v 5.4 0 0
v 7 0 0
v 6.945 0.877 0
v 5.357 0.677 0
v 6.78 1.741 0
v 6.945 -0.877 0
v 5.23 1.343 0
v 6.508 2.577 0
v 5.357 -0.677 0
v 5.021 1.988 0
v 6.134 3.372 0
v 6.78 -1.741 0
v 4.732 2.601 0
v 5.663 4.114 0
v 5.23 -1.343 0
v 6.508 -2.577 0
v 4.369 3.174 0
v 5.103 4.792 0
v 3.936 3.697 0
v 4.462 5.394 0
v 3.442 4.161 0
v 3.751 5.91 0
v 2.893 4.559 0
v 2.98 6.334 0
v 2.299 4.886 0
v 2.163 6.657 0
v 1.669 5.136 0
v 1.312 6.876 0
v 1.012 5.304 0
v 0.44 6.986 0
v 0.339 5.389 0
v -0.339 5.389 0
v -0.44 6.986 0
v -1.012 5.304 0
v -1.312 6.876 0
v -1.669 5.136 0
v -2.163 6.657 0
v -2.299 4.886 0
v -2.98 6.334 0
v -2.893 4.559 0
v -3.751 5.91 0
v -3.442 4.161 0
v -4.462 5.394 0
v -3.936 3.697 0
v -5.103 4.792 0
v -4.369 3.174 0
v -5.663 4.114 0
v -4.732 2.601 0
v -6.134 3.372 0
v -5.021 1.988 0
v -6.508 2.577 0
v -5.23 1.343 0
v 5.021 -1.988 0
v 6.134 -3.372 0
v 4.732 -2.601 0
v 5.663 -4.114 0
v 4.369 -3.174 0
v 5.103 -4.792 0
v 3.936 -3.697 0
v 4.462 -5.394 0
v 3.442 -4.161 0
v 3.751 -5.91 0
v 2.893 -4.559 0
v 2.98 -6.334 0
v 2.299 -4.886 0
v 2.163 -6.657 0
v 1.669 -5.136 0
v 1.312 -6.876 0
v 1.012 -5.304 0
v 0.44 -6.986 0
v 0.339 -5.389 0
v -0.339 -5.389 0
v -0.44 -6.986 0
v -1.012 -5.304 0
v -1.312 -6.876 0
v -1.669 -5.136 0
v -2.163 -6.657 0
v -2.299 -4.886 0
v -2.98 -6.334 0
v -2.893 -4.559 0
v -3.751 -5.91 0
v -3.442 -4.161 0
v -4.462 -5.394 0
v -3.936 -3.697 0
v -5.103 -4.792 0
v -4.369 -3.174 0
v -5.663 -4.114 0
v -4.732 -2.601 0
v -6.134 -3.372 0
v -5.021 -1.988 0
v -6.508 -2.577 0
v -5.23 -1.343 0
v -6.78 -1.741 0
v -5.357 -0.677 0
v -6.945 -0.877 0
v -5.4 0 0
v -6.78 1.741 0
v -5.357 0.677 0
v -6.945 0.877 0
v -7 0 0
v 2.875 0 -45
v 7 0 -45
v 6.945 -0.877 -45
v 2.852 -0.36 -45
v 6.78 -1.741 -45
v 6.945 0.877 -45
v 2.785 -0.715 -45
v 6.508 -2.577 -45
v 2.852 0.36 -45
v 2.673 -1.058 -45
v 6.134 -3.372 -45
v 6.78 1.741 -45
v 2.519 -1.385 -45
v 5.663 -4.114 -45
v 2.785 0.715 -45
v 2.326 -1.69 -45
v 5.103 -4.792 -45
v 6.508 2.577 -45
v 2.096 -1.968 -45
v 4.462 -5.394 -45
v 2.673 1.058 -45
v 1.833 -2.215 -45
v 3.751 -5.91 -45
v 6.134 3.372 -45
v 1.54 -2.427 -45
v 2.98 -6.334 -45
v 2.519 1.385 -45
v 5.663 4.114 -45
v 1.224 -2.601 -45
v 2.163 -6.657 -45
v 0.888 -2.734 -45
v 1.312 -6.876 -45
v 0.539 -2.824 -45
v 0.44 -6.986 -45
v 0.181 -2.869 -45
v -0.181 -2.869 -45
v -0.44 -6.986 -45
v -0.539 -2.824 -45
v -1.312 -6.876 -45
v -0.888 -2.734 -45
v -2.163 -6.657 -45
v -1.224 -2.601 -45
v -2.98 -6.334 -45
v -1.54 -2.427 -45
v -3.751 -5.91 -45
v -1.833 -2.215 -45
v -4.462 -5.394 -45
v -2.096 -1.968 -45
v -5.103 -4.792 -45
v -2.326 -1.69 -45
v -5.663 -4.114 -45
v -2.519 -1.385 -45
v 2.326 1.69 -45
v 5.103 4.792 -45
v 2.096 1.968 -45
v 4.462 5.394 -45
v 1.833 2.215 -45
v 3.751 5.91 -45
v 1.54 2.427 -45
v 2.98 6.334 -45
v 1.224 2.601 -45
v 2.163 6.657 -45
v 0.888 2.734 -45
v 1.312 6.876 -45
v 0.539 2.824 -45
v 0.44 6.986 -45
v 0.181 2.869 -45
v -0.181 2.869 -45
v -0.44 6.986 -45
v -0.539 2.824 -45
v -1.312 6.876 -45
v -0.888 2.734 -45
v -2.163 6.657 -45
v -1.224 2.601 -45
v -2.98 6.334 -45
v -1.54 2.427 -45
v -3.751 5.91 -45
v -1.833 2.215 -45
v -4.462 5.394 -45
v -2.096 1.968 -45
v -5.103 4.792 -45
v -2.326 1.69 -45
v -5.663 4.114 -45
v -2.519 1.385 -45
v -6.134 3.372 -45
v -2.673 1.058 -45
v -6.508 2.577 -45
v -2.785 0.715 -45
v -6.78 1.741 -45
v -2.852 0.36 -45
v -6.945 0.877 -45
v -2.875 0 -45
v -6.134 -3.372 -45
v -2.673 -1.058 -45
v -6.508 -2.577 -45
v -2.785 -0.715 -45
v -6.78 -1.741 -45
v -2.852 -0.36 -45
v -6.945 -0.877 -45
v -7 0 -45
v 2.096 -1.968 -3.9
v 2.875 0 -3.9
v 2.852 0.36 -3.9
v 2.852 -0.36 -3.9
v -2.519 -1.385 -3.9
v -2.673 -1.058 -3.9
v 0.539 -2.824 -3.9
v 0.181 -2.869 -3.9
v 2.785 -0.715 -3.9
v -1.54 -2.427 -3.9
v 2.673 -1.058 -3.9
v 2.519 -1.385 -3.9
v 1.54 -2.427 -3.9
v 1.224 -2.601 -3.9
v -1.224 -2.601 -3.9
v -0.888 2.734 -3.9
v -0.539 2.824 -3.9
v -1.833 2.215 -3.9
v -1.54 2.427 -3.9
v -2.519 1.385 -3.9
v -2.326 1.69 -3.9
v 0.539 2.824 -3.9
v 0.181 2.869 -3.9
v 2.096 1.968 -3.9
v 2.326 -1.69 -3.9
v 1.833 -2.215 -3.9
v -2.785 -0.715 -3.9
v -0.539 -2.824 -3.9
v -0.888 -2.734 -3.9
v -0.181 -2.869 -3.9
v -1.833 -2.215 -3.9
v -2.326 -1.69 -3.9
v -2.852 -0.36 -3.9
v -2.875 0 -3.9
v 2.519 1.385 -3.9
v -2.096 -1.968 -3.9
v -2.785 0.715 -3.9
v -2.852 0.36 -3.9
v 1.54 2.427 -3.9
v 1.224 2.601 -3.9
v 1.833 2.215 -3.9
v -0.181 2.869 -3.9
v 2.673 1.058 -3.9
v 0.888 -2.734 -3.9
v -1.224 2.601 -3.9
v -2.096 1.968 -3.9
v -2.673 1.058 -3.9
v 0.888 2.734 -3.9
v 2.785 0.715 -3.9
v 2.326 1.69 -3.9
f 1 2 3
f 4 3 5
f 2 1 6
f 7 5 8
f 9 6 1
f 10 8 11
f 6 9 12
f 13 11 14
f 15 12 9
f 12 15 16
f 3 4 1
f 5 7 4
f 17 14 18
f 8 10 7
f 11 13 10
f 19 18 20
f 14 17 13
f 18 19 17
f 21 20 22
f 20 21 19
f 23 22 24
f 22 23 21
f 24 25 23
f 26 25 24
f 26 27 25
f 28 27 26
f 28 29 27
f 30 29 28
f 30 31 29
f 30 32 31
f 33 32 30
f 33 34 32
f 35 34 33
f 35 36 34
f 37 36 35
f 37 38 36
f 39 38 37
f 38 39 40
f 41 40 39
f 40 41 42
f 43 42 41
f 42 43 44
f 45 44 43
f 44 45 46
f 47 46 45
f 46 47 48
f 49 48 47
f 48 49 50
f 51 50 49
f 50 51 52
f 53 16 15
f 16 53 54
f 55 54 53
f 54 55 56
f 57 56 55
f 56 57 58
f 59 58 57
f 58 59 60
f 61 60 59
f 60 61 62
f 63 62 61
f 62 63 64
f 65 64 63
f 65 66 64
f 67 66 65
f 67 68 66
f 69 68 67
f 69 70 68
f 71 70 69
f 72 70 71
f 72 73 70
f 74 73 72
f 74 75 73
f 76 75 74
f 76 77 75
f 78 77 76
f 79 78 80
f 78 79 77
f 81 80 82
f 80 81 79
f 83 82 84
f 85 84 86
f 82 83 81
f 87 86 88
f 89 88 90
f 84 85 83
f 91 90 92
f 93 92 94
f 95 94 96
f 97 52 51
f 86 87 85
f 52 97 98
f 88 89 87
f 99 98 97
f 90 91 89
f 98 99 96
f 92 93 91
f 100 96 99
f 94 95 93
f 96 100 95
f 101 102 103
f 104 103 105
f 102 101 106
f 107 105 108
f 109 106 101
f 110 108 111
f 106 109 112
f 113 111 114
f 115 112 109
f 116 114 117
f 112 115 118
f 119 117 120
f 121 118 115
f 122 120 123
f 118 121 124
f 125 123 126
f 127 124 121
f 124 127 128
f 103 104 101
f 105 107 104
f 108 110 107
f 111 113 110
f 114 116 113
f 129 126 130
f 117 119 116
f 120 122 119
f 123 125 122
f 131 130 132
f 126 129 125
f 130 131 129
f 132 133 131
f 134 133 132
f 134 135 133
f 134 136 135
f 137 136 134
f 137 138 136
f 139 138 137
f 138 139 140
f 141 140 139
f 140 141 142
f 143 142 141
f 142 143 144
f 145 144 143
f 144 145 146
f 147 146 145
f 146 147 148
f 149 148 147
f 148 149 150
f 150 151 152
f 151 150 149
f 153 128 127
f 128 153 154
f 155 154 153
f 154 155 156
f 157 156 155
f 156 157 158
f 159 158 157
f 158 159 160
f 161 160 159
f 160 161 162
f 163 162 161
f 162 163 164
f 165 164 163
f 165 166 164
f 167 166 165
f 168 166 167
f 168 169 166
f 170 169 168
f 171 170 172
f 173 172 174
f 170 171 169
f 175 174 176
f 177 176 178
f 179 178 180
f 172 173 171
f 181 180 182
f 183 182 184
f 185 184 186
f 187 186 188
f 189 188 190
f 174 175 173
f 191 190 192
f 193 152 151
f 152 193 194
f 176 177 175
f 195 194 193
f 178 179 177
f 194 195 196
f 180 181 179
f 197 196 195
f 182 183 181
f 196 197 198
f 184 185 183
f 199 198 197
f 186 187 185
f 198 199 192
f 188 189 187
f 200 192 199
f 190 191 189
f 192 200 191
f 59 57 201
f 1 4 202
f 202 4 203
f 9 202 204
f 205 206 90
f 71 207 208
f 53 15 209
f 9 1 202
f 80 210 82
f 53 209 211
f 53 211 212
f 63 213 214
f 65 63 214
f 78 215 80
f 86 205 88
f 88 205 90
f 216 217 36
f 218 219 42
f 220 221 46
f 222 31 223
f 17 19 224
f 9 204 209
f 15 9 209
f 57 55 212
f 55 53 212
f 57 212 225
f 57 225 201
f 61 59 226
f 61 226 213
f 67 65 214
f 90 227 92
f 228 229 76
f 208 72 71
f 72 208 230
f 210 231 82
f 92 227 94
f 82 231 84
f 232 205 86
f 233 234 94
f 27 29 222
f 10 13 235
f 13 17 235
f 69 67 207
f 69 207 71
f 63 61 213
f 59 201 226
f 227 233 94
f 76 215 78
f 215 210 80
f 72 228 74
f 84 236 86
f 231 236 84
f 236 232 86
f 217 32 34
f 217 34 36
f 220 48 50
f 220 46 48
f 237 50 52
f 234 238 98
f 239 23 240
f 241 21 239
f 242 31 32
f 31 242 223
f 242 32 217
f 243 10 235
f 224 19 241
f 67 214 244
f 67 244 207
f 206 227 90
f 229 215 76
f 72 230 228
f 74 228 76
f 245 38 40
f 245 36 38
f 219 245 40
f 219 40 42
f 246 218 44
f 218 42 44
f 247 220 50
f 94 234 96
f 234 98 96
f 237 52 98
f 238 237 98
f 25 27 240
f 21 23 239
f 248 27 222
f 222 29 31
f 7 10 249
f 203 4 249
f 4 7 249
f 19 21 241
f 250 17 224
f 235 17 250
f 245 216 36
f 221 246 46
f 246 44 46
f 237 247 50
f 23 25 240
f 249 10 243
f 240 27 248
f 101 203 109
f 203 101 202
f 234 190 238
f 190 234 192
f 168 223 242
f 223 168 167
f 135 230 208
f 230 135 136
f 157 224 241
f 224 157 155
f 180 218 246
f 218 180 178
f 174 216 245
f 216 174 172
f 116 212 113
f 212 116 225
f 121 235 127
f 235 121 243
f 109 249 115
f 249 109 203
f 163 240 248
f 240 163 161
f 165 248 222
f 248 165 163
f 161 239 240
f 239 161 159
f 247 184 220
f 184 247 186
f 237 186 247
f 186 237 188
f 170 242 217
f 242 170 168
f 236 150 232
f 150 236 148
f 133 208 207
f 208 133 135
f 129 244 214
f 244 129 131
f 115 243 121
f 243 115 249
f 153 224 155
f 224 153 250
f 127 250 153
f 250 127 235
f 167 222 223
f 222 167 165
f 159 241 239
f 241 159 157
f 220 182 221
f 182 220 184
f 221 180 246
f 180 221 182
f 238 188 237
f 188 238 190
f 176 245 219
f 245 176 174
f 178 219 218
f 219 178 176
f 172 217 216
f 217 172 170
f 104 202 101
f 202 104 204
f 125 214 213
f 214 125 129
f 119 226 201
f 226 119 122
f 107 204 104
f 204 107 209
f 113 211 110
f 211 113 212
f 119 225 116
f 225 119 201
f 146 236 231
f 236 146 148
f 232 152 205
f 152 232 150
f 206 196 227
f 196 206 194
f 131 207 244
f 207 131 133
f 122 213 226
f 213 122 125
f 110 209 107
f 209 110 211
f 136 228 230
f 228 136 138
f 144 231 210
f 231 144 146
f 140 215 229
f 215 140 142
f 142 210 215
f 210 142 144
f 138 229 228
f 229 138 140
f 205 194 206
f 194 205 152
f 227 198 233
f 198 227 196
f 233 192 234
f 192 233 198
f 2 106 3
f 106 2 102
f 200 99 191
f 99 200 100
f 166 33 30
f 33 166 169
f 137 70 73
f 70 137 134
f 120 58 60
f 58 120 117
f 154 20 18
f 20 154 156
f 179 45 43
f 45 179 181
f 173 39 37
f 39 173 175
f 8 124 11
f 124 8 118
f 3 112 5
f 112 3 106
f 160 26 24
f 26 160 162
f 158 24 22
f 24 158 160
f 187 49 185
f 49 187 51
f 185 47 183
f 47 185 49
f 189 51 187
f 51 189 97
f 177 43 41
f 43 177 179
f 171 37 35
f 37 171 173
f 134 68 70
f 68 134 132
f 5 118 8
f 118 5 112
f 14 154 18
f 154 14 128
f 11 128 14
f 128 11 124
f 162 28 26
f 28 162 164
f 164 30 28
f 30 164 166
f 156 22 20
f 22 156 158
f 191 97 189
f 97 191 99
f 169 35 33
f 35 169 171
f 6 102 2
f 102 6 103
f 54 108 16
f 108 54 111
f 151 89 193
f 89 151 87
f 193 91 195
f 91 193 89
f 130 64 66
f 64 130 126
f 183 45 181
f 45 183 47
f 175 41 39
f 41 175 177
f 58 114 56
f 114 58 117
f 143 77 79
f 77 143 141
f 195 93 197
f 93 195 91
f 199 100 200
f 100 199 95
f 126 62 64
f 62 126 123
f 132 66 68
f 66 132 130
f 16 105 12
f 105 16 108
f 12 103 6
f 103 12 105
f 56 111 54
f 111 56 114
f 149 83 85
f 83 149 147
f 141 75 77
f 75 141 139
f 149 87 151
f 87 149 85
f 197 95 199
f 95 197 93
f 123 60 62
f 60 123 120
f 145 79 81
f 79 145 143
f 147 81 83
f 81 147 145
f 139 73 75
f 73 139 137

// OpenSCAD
$fn = 50;


difference() {
	union() {
		translate(v = [0, 0, -45.0000000000]) {
			cylinder(h = 45, r = 7.0000000000);
		}
		cylinder(h = 0, r = 17.0000000000);
	}
	union() {
		translate(v = [0, 0, 0]) {
			rotate(a = [0, 0, 0]) {
				difference() {
					union() {
						#translate(v = [0, 0, -45.0000000000]) {
							cylinder(h = 45, r = 2.6000000000);
						}
						#translate(v = [0, 0, -3.9000000000]) {
							cylinder(h = 3.9000000000, r1 = 2.8750000000, r2 = 5.4000000000);
						}
						#translate(v = [0, 0, -45.0000000000]) {
							cylinder(h = 45, r = 2.8750000000);
						}
						#translate(v = [0, 0, -45.0000000000]) {
							cylinder(h = 45, r = 2.6000000000);
						}
					}
					union();
				}
			}
		}
	}
}
